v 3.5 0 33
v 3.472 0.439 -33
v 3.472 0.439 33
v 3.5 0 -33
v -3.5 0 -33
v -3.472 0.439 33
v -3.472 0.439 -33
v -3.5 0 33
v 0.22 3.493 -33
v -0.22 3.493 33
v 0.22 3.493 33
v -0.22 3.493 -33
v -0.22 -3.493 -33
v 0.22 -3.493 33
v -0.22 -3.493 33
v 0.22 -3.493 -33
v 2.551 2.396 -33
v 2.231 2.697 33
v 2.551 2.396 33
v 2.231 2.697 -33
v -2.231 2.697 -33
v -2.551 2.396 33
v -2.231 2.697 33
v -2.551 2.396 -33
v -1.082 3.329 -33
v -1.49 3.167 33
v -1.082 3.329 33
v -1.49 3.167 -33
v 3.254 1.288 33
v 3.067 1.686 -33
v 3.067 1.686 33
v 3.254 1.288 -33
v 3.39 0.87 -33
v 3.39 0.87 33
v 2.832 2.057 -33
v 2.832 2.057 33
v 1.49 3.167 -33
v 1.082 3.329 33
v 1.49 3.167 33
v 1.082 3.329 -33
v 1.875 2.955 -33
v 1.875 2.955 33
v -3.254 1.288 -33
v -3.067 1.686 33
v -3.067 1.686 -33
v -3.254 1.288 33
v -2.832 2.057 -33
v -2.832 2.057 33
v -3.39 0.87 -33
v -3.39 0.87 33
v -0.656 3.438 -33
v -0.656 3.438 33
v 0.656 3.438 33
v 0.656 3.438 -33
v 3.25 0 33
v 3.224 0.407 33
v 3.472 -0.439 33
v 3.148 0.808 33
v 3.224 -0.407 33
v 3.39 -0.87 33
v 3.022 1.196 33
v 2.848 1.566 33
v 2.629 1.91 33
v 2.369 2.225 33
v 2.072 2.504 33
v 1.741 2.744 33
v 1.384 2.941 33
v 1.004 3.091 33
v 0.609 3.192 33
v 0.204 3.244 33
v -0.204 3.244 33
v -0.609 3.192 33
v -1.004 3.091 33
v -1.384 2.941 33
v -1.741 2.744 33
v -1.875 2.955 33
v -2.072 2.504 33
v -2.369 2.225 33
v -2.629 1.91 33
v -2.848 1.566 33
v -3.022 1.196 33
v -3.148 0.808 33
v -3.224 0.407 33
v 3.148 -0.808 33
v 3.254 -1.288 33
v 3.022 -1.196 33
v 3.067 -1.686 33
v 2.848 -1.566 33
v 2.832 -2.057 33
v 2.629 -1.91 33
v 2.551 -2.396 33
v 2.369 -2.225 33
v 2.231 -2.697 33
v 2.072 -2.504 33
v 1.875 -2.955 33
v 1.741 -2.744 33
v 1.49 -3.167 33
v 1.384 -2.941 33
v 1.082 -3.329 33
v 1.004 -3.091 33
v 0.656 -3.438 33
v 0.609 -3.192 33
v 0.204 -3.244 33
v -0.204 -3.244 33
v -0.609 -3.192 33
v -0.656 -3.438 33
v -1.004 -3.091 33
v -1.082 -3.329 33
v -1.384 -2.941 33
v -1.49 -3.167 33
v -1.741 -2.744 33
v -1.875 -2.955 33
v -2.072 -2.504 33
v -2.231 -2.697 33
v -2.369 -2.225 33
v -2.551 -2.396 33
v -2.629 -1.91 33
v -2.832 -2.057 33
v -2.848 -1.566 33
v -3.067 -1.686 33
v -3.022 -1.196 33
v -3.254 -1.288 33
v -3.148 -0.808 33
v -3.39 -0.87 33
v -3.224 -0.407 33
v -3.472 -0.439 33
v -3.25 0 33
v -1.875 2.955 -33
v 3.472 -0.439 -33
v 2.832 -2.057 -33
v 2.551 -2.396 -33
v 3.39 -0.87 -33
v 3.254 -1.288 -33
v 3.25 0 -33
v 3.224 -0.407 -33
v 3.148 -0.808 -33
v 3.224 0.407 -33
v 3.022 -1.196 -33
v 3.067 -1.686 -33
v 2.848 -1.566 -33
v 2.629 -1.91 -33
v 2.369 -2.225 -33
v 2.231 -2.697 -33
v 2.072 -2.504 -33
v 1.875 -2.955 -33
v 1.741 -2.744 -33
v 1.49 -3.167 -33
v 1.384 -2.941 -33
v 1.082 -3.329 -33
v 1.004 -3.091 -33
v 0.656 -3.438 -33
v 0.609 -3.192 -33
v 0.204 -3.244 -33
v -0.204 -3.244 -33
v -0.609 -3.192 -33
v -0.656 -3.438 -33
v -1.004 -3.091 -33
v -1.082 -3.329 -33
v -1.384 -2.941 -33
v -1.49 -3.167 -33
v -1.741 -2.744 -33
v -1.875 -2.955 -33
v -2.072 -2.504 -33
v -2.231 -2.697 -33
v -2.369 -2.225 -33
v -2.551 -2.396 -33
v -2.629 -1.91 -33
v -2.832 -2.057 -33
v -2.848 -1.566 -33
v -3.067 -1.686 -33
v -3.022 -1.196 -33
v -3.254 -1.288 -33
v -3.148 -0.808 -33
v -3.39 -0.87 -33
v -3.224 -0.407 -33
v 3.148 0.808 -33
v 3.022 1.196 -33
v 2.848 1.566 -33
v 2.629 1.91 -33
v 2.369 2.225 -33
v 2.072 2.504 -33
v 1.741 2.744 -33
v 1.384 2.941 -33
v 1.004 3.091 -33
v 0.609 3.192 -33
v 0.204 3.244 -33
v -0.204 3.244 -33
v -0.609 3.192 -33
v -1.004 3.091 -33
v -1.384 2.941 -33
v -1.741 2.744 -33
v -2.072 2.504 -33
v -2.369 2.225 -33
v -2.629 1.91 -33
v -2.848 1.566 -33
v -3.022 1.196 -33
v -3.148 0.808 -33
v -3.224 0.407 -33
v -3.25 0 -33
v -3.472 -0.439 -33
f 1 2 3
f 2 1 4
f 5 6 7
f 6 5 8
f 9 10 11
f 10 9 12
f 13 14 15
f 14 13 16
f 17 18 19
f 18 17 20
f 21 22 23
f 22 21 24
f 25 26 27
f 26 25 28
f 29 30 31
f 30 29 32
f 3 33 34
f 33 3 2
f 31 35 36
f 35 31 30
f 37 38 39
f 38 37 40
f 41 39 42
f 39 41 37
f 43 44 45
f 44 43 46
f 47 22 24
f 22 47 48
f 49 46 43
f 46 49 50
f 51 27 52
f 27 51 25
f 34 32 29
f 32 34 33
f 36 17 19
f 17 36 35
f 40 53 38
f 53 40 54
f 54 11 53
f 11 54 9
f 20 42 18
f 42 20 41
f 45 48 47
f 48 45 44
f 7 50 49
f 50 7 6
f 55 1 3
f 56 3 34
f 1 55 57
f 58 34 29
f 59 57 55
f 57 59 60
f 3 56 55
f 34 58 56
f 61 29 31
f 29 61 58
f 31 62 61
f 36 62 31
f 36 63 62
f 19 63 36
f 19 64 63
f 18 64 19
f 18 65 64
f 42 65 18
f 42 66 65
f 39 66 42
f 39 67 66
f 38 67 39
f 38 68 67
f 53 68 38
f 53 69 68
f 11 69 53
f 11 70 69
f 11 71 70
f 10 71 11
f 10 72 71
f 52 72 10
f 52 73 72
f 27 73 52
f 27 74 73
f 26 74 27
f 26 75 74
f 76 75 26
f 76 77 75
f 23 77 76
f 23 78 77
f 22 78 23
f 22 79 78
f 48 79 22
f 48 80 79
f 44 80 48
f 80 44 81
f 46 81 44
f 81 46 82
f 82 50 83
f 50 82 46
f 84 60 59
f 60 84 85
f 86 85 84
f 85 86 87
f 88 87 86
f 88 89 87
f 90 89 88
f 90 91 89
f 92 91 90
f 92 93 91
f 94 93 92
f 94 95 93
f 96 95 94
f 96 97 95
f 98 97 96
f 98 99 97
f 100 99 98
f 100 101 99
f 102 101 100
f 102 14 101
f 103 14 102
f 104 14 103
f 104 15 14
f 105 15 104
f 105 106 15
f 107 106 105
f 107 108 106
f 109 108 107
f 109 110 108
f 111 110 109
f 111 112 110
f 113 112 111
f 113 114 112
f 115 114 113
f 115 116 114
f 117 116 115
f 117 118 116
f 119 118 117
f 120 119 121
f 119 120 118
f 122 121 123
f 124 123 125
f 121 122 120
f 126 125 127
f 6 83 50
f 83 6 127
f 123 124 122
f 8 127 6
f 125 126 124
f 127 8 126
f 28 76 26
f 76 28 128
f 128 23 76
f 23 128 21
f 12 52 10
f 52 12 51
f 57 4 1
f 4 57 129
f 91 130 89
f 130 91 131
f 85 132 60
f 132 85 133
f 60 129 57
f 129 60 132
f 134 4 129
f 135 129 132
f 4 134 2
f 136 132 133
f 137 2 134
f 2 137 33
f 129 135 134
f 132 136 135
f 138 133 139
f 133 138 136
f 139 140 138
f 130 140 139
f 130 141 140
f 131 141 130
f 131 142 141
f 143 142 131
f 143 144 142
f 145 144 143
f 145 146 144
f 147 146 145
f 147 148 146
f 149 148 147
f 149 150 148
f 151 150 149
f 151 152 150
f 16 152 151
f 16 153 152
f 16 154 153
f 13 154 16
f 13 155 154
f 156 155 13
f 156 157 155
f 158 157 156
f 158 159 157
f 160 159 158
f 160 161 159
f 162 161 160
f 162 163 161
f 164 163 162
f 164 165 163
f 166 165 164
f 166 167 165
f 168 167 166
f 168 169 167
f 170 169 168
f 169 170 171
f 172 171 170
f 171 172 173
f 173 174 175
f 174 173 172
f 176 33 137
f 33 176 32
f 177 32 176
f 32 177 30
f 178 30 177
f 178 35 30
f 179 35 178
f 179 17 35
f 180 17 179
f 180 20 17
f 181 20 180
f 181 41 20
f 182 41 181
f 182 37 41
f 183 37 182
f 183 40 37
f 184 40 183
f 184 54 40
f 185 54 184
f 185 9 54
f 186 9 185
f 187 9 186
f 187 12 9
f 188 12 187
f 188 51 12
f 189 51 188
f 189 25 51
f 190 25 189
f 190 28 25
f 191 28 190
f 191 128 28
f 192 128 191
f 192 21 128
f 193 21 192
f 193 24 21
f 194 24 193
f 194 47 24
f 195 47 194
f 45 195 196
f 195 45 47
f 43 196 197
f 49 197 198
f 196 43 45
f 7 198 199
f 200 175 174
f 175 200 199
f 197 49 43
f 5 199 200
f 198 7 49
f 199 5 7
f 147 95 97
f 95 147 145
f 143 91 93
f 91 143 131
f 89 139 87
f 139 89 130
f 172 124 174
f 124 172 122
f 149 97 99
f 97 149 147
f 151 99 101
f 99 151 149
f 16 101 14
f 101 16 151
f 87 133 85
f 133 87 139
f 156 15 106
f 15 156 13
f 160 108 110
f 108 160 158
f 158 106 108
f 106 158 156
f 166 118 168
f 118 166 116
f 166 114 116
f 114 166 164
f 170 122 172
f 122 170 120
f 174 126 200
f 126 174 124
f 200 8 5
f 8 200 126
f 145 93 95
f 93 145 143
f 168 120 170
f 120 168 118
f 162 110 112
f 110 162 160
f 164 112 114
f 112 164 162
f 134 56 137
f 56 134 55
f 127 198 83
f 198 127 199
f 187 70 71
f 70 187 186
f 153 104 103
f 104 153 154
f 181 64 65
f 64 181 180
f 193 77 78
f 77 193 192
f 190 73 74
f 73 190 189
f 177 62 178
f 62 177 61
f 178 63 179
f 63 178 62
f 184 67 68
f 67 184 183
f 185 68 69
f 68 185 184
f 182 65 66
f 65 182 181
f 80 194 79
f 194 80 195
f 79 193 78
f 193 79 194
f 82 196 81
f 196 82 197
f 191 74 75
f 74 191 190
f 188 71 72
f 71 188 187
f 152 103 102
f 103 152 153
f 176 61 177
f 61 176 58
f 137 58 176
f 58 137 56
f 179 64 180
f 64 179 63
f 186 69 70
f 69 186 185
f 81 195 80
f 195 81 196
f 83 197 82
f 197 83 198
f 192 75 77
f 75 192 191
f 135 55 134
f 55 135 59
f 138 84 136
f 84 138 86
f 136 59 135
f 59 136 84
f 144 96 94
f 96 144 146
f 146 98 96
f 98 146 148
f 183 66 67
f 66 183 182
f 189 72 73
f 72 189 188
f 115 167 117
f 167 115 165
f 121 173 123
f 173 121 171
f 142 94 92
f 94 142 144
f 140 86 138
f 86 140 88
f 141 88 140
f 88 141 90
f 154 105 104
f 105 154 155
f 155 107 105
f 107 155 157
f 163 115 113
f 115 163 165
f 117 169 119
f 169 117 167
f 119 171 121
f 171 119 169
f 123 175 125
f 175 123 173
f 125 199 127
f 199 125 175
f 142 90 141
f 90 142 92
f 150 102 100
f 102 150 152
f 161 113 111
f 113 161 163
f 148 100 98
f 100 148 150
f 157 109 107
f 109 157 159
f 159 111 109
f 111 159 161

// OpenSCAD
$fn = 50;


difference() {
	union() {
		translate(v = [0, 0, -33.0000000000]) {
			cylinder(h = 66, r = 3.5000000000);
		}
	}
	union() {
		translate(v = [0, 0, -100.0000000000]) {
			cylinder(h = 200, r = 3.2500000000);
		}
	}
}
